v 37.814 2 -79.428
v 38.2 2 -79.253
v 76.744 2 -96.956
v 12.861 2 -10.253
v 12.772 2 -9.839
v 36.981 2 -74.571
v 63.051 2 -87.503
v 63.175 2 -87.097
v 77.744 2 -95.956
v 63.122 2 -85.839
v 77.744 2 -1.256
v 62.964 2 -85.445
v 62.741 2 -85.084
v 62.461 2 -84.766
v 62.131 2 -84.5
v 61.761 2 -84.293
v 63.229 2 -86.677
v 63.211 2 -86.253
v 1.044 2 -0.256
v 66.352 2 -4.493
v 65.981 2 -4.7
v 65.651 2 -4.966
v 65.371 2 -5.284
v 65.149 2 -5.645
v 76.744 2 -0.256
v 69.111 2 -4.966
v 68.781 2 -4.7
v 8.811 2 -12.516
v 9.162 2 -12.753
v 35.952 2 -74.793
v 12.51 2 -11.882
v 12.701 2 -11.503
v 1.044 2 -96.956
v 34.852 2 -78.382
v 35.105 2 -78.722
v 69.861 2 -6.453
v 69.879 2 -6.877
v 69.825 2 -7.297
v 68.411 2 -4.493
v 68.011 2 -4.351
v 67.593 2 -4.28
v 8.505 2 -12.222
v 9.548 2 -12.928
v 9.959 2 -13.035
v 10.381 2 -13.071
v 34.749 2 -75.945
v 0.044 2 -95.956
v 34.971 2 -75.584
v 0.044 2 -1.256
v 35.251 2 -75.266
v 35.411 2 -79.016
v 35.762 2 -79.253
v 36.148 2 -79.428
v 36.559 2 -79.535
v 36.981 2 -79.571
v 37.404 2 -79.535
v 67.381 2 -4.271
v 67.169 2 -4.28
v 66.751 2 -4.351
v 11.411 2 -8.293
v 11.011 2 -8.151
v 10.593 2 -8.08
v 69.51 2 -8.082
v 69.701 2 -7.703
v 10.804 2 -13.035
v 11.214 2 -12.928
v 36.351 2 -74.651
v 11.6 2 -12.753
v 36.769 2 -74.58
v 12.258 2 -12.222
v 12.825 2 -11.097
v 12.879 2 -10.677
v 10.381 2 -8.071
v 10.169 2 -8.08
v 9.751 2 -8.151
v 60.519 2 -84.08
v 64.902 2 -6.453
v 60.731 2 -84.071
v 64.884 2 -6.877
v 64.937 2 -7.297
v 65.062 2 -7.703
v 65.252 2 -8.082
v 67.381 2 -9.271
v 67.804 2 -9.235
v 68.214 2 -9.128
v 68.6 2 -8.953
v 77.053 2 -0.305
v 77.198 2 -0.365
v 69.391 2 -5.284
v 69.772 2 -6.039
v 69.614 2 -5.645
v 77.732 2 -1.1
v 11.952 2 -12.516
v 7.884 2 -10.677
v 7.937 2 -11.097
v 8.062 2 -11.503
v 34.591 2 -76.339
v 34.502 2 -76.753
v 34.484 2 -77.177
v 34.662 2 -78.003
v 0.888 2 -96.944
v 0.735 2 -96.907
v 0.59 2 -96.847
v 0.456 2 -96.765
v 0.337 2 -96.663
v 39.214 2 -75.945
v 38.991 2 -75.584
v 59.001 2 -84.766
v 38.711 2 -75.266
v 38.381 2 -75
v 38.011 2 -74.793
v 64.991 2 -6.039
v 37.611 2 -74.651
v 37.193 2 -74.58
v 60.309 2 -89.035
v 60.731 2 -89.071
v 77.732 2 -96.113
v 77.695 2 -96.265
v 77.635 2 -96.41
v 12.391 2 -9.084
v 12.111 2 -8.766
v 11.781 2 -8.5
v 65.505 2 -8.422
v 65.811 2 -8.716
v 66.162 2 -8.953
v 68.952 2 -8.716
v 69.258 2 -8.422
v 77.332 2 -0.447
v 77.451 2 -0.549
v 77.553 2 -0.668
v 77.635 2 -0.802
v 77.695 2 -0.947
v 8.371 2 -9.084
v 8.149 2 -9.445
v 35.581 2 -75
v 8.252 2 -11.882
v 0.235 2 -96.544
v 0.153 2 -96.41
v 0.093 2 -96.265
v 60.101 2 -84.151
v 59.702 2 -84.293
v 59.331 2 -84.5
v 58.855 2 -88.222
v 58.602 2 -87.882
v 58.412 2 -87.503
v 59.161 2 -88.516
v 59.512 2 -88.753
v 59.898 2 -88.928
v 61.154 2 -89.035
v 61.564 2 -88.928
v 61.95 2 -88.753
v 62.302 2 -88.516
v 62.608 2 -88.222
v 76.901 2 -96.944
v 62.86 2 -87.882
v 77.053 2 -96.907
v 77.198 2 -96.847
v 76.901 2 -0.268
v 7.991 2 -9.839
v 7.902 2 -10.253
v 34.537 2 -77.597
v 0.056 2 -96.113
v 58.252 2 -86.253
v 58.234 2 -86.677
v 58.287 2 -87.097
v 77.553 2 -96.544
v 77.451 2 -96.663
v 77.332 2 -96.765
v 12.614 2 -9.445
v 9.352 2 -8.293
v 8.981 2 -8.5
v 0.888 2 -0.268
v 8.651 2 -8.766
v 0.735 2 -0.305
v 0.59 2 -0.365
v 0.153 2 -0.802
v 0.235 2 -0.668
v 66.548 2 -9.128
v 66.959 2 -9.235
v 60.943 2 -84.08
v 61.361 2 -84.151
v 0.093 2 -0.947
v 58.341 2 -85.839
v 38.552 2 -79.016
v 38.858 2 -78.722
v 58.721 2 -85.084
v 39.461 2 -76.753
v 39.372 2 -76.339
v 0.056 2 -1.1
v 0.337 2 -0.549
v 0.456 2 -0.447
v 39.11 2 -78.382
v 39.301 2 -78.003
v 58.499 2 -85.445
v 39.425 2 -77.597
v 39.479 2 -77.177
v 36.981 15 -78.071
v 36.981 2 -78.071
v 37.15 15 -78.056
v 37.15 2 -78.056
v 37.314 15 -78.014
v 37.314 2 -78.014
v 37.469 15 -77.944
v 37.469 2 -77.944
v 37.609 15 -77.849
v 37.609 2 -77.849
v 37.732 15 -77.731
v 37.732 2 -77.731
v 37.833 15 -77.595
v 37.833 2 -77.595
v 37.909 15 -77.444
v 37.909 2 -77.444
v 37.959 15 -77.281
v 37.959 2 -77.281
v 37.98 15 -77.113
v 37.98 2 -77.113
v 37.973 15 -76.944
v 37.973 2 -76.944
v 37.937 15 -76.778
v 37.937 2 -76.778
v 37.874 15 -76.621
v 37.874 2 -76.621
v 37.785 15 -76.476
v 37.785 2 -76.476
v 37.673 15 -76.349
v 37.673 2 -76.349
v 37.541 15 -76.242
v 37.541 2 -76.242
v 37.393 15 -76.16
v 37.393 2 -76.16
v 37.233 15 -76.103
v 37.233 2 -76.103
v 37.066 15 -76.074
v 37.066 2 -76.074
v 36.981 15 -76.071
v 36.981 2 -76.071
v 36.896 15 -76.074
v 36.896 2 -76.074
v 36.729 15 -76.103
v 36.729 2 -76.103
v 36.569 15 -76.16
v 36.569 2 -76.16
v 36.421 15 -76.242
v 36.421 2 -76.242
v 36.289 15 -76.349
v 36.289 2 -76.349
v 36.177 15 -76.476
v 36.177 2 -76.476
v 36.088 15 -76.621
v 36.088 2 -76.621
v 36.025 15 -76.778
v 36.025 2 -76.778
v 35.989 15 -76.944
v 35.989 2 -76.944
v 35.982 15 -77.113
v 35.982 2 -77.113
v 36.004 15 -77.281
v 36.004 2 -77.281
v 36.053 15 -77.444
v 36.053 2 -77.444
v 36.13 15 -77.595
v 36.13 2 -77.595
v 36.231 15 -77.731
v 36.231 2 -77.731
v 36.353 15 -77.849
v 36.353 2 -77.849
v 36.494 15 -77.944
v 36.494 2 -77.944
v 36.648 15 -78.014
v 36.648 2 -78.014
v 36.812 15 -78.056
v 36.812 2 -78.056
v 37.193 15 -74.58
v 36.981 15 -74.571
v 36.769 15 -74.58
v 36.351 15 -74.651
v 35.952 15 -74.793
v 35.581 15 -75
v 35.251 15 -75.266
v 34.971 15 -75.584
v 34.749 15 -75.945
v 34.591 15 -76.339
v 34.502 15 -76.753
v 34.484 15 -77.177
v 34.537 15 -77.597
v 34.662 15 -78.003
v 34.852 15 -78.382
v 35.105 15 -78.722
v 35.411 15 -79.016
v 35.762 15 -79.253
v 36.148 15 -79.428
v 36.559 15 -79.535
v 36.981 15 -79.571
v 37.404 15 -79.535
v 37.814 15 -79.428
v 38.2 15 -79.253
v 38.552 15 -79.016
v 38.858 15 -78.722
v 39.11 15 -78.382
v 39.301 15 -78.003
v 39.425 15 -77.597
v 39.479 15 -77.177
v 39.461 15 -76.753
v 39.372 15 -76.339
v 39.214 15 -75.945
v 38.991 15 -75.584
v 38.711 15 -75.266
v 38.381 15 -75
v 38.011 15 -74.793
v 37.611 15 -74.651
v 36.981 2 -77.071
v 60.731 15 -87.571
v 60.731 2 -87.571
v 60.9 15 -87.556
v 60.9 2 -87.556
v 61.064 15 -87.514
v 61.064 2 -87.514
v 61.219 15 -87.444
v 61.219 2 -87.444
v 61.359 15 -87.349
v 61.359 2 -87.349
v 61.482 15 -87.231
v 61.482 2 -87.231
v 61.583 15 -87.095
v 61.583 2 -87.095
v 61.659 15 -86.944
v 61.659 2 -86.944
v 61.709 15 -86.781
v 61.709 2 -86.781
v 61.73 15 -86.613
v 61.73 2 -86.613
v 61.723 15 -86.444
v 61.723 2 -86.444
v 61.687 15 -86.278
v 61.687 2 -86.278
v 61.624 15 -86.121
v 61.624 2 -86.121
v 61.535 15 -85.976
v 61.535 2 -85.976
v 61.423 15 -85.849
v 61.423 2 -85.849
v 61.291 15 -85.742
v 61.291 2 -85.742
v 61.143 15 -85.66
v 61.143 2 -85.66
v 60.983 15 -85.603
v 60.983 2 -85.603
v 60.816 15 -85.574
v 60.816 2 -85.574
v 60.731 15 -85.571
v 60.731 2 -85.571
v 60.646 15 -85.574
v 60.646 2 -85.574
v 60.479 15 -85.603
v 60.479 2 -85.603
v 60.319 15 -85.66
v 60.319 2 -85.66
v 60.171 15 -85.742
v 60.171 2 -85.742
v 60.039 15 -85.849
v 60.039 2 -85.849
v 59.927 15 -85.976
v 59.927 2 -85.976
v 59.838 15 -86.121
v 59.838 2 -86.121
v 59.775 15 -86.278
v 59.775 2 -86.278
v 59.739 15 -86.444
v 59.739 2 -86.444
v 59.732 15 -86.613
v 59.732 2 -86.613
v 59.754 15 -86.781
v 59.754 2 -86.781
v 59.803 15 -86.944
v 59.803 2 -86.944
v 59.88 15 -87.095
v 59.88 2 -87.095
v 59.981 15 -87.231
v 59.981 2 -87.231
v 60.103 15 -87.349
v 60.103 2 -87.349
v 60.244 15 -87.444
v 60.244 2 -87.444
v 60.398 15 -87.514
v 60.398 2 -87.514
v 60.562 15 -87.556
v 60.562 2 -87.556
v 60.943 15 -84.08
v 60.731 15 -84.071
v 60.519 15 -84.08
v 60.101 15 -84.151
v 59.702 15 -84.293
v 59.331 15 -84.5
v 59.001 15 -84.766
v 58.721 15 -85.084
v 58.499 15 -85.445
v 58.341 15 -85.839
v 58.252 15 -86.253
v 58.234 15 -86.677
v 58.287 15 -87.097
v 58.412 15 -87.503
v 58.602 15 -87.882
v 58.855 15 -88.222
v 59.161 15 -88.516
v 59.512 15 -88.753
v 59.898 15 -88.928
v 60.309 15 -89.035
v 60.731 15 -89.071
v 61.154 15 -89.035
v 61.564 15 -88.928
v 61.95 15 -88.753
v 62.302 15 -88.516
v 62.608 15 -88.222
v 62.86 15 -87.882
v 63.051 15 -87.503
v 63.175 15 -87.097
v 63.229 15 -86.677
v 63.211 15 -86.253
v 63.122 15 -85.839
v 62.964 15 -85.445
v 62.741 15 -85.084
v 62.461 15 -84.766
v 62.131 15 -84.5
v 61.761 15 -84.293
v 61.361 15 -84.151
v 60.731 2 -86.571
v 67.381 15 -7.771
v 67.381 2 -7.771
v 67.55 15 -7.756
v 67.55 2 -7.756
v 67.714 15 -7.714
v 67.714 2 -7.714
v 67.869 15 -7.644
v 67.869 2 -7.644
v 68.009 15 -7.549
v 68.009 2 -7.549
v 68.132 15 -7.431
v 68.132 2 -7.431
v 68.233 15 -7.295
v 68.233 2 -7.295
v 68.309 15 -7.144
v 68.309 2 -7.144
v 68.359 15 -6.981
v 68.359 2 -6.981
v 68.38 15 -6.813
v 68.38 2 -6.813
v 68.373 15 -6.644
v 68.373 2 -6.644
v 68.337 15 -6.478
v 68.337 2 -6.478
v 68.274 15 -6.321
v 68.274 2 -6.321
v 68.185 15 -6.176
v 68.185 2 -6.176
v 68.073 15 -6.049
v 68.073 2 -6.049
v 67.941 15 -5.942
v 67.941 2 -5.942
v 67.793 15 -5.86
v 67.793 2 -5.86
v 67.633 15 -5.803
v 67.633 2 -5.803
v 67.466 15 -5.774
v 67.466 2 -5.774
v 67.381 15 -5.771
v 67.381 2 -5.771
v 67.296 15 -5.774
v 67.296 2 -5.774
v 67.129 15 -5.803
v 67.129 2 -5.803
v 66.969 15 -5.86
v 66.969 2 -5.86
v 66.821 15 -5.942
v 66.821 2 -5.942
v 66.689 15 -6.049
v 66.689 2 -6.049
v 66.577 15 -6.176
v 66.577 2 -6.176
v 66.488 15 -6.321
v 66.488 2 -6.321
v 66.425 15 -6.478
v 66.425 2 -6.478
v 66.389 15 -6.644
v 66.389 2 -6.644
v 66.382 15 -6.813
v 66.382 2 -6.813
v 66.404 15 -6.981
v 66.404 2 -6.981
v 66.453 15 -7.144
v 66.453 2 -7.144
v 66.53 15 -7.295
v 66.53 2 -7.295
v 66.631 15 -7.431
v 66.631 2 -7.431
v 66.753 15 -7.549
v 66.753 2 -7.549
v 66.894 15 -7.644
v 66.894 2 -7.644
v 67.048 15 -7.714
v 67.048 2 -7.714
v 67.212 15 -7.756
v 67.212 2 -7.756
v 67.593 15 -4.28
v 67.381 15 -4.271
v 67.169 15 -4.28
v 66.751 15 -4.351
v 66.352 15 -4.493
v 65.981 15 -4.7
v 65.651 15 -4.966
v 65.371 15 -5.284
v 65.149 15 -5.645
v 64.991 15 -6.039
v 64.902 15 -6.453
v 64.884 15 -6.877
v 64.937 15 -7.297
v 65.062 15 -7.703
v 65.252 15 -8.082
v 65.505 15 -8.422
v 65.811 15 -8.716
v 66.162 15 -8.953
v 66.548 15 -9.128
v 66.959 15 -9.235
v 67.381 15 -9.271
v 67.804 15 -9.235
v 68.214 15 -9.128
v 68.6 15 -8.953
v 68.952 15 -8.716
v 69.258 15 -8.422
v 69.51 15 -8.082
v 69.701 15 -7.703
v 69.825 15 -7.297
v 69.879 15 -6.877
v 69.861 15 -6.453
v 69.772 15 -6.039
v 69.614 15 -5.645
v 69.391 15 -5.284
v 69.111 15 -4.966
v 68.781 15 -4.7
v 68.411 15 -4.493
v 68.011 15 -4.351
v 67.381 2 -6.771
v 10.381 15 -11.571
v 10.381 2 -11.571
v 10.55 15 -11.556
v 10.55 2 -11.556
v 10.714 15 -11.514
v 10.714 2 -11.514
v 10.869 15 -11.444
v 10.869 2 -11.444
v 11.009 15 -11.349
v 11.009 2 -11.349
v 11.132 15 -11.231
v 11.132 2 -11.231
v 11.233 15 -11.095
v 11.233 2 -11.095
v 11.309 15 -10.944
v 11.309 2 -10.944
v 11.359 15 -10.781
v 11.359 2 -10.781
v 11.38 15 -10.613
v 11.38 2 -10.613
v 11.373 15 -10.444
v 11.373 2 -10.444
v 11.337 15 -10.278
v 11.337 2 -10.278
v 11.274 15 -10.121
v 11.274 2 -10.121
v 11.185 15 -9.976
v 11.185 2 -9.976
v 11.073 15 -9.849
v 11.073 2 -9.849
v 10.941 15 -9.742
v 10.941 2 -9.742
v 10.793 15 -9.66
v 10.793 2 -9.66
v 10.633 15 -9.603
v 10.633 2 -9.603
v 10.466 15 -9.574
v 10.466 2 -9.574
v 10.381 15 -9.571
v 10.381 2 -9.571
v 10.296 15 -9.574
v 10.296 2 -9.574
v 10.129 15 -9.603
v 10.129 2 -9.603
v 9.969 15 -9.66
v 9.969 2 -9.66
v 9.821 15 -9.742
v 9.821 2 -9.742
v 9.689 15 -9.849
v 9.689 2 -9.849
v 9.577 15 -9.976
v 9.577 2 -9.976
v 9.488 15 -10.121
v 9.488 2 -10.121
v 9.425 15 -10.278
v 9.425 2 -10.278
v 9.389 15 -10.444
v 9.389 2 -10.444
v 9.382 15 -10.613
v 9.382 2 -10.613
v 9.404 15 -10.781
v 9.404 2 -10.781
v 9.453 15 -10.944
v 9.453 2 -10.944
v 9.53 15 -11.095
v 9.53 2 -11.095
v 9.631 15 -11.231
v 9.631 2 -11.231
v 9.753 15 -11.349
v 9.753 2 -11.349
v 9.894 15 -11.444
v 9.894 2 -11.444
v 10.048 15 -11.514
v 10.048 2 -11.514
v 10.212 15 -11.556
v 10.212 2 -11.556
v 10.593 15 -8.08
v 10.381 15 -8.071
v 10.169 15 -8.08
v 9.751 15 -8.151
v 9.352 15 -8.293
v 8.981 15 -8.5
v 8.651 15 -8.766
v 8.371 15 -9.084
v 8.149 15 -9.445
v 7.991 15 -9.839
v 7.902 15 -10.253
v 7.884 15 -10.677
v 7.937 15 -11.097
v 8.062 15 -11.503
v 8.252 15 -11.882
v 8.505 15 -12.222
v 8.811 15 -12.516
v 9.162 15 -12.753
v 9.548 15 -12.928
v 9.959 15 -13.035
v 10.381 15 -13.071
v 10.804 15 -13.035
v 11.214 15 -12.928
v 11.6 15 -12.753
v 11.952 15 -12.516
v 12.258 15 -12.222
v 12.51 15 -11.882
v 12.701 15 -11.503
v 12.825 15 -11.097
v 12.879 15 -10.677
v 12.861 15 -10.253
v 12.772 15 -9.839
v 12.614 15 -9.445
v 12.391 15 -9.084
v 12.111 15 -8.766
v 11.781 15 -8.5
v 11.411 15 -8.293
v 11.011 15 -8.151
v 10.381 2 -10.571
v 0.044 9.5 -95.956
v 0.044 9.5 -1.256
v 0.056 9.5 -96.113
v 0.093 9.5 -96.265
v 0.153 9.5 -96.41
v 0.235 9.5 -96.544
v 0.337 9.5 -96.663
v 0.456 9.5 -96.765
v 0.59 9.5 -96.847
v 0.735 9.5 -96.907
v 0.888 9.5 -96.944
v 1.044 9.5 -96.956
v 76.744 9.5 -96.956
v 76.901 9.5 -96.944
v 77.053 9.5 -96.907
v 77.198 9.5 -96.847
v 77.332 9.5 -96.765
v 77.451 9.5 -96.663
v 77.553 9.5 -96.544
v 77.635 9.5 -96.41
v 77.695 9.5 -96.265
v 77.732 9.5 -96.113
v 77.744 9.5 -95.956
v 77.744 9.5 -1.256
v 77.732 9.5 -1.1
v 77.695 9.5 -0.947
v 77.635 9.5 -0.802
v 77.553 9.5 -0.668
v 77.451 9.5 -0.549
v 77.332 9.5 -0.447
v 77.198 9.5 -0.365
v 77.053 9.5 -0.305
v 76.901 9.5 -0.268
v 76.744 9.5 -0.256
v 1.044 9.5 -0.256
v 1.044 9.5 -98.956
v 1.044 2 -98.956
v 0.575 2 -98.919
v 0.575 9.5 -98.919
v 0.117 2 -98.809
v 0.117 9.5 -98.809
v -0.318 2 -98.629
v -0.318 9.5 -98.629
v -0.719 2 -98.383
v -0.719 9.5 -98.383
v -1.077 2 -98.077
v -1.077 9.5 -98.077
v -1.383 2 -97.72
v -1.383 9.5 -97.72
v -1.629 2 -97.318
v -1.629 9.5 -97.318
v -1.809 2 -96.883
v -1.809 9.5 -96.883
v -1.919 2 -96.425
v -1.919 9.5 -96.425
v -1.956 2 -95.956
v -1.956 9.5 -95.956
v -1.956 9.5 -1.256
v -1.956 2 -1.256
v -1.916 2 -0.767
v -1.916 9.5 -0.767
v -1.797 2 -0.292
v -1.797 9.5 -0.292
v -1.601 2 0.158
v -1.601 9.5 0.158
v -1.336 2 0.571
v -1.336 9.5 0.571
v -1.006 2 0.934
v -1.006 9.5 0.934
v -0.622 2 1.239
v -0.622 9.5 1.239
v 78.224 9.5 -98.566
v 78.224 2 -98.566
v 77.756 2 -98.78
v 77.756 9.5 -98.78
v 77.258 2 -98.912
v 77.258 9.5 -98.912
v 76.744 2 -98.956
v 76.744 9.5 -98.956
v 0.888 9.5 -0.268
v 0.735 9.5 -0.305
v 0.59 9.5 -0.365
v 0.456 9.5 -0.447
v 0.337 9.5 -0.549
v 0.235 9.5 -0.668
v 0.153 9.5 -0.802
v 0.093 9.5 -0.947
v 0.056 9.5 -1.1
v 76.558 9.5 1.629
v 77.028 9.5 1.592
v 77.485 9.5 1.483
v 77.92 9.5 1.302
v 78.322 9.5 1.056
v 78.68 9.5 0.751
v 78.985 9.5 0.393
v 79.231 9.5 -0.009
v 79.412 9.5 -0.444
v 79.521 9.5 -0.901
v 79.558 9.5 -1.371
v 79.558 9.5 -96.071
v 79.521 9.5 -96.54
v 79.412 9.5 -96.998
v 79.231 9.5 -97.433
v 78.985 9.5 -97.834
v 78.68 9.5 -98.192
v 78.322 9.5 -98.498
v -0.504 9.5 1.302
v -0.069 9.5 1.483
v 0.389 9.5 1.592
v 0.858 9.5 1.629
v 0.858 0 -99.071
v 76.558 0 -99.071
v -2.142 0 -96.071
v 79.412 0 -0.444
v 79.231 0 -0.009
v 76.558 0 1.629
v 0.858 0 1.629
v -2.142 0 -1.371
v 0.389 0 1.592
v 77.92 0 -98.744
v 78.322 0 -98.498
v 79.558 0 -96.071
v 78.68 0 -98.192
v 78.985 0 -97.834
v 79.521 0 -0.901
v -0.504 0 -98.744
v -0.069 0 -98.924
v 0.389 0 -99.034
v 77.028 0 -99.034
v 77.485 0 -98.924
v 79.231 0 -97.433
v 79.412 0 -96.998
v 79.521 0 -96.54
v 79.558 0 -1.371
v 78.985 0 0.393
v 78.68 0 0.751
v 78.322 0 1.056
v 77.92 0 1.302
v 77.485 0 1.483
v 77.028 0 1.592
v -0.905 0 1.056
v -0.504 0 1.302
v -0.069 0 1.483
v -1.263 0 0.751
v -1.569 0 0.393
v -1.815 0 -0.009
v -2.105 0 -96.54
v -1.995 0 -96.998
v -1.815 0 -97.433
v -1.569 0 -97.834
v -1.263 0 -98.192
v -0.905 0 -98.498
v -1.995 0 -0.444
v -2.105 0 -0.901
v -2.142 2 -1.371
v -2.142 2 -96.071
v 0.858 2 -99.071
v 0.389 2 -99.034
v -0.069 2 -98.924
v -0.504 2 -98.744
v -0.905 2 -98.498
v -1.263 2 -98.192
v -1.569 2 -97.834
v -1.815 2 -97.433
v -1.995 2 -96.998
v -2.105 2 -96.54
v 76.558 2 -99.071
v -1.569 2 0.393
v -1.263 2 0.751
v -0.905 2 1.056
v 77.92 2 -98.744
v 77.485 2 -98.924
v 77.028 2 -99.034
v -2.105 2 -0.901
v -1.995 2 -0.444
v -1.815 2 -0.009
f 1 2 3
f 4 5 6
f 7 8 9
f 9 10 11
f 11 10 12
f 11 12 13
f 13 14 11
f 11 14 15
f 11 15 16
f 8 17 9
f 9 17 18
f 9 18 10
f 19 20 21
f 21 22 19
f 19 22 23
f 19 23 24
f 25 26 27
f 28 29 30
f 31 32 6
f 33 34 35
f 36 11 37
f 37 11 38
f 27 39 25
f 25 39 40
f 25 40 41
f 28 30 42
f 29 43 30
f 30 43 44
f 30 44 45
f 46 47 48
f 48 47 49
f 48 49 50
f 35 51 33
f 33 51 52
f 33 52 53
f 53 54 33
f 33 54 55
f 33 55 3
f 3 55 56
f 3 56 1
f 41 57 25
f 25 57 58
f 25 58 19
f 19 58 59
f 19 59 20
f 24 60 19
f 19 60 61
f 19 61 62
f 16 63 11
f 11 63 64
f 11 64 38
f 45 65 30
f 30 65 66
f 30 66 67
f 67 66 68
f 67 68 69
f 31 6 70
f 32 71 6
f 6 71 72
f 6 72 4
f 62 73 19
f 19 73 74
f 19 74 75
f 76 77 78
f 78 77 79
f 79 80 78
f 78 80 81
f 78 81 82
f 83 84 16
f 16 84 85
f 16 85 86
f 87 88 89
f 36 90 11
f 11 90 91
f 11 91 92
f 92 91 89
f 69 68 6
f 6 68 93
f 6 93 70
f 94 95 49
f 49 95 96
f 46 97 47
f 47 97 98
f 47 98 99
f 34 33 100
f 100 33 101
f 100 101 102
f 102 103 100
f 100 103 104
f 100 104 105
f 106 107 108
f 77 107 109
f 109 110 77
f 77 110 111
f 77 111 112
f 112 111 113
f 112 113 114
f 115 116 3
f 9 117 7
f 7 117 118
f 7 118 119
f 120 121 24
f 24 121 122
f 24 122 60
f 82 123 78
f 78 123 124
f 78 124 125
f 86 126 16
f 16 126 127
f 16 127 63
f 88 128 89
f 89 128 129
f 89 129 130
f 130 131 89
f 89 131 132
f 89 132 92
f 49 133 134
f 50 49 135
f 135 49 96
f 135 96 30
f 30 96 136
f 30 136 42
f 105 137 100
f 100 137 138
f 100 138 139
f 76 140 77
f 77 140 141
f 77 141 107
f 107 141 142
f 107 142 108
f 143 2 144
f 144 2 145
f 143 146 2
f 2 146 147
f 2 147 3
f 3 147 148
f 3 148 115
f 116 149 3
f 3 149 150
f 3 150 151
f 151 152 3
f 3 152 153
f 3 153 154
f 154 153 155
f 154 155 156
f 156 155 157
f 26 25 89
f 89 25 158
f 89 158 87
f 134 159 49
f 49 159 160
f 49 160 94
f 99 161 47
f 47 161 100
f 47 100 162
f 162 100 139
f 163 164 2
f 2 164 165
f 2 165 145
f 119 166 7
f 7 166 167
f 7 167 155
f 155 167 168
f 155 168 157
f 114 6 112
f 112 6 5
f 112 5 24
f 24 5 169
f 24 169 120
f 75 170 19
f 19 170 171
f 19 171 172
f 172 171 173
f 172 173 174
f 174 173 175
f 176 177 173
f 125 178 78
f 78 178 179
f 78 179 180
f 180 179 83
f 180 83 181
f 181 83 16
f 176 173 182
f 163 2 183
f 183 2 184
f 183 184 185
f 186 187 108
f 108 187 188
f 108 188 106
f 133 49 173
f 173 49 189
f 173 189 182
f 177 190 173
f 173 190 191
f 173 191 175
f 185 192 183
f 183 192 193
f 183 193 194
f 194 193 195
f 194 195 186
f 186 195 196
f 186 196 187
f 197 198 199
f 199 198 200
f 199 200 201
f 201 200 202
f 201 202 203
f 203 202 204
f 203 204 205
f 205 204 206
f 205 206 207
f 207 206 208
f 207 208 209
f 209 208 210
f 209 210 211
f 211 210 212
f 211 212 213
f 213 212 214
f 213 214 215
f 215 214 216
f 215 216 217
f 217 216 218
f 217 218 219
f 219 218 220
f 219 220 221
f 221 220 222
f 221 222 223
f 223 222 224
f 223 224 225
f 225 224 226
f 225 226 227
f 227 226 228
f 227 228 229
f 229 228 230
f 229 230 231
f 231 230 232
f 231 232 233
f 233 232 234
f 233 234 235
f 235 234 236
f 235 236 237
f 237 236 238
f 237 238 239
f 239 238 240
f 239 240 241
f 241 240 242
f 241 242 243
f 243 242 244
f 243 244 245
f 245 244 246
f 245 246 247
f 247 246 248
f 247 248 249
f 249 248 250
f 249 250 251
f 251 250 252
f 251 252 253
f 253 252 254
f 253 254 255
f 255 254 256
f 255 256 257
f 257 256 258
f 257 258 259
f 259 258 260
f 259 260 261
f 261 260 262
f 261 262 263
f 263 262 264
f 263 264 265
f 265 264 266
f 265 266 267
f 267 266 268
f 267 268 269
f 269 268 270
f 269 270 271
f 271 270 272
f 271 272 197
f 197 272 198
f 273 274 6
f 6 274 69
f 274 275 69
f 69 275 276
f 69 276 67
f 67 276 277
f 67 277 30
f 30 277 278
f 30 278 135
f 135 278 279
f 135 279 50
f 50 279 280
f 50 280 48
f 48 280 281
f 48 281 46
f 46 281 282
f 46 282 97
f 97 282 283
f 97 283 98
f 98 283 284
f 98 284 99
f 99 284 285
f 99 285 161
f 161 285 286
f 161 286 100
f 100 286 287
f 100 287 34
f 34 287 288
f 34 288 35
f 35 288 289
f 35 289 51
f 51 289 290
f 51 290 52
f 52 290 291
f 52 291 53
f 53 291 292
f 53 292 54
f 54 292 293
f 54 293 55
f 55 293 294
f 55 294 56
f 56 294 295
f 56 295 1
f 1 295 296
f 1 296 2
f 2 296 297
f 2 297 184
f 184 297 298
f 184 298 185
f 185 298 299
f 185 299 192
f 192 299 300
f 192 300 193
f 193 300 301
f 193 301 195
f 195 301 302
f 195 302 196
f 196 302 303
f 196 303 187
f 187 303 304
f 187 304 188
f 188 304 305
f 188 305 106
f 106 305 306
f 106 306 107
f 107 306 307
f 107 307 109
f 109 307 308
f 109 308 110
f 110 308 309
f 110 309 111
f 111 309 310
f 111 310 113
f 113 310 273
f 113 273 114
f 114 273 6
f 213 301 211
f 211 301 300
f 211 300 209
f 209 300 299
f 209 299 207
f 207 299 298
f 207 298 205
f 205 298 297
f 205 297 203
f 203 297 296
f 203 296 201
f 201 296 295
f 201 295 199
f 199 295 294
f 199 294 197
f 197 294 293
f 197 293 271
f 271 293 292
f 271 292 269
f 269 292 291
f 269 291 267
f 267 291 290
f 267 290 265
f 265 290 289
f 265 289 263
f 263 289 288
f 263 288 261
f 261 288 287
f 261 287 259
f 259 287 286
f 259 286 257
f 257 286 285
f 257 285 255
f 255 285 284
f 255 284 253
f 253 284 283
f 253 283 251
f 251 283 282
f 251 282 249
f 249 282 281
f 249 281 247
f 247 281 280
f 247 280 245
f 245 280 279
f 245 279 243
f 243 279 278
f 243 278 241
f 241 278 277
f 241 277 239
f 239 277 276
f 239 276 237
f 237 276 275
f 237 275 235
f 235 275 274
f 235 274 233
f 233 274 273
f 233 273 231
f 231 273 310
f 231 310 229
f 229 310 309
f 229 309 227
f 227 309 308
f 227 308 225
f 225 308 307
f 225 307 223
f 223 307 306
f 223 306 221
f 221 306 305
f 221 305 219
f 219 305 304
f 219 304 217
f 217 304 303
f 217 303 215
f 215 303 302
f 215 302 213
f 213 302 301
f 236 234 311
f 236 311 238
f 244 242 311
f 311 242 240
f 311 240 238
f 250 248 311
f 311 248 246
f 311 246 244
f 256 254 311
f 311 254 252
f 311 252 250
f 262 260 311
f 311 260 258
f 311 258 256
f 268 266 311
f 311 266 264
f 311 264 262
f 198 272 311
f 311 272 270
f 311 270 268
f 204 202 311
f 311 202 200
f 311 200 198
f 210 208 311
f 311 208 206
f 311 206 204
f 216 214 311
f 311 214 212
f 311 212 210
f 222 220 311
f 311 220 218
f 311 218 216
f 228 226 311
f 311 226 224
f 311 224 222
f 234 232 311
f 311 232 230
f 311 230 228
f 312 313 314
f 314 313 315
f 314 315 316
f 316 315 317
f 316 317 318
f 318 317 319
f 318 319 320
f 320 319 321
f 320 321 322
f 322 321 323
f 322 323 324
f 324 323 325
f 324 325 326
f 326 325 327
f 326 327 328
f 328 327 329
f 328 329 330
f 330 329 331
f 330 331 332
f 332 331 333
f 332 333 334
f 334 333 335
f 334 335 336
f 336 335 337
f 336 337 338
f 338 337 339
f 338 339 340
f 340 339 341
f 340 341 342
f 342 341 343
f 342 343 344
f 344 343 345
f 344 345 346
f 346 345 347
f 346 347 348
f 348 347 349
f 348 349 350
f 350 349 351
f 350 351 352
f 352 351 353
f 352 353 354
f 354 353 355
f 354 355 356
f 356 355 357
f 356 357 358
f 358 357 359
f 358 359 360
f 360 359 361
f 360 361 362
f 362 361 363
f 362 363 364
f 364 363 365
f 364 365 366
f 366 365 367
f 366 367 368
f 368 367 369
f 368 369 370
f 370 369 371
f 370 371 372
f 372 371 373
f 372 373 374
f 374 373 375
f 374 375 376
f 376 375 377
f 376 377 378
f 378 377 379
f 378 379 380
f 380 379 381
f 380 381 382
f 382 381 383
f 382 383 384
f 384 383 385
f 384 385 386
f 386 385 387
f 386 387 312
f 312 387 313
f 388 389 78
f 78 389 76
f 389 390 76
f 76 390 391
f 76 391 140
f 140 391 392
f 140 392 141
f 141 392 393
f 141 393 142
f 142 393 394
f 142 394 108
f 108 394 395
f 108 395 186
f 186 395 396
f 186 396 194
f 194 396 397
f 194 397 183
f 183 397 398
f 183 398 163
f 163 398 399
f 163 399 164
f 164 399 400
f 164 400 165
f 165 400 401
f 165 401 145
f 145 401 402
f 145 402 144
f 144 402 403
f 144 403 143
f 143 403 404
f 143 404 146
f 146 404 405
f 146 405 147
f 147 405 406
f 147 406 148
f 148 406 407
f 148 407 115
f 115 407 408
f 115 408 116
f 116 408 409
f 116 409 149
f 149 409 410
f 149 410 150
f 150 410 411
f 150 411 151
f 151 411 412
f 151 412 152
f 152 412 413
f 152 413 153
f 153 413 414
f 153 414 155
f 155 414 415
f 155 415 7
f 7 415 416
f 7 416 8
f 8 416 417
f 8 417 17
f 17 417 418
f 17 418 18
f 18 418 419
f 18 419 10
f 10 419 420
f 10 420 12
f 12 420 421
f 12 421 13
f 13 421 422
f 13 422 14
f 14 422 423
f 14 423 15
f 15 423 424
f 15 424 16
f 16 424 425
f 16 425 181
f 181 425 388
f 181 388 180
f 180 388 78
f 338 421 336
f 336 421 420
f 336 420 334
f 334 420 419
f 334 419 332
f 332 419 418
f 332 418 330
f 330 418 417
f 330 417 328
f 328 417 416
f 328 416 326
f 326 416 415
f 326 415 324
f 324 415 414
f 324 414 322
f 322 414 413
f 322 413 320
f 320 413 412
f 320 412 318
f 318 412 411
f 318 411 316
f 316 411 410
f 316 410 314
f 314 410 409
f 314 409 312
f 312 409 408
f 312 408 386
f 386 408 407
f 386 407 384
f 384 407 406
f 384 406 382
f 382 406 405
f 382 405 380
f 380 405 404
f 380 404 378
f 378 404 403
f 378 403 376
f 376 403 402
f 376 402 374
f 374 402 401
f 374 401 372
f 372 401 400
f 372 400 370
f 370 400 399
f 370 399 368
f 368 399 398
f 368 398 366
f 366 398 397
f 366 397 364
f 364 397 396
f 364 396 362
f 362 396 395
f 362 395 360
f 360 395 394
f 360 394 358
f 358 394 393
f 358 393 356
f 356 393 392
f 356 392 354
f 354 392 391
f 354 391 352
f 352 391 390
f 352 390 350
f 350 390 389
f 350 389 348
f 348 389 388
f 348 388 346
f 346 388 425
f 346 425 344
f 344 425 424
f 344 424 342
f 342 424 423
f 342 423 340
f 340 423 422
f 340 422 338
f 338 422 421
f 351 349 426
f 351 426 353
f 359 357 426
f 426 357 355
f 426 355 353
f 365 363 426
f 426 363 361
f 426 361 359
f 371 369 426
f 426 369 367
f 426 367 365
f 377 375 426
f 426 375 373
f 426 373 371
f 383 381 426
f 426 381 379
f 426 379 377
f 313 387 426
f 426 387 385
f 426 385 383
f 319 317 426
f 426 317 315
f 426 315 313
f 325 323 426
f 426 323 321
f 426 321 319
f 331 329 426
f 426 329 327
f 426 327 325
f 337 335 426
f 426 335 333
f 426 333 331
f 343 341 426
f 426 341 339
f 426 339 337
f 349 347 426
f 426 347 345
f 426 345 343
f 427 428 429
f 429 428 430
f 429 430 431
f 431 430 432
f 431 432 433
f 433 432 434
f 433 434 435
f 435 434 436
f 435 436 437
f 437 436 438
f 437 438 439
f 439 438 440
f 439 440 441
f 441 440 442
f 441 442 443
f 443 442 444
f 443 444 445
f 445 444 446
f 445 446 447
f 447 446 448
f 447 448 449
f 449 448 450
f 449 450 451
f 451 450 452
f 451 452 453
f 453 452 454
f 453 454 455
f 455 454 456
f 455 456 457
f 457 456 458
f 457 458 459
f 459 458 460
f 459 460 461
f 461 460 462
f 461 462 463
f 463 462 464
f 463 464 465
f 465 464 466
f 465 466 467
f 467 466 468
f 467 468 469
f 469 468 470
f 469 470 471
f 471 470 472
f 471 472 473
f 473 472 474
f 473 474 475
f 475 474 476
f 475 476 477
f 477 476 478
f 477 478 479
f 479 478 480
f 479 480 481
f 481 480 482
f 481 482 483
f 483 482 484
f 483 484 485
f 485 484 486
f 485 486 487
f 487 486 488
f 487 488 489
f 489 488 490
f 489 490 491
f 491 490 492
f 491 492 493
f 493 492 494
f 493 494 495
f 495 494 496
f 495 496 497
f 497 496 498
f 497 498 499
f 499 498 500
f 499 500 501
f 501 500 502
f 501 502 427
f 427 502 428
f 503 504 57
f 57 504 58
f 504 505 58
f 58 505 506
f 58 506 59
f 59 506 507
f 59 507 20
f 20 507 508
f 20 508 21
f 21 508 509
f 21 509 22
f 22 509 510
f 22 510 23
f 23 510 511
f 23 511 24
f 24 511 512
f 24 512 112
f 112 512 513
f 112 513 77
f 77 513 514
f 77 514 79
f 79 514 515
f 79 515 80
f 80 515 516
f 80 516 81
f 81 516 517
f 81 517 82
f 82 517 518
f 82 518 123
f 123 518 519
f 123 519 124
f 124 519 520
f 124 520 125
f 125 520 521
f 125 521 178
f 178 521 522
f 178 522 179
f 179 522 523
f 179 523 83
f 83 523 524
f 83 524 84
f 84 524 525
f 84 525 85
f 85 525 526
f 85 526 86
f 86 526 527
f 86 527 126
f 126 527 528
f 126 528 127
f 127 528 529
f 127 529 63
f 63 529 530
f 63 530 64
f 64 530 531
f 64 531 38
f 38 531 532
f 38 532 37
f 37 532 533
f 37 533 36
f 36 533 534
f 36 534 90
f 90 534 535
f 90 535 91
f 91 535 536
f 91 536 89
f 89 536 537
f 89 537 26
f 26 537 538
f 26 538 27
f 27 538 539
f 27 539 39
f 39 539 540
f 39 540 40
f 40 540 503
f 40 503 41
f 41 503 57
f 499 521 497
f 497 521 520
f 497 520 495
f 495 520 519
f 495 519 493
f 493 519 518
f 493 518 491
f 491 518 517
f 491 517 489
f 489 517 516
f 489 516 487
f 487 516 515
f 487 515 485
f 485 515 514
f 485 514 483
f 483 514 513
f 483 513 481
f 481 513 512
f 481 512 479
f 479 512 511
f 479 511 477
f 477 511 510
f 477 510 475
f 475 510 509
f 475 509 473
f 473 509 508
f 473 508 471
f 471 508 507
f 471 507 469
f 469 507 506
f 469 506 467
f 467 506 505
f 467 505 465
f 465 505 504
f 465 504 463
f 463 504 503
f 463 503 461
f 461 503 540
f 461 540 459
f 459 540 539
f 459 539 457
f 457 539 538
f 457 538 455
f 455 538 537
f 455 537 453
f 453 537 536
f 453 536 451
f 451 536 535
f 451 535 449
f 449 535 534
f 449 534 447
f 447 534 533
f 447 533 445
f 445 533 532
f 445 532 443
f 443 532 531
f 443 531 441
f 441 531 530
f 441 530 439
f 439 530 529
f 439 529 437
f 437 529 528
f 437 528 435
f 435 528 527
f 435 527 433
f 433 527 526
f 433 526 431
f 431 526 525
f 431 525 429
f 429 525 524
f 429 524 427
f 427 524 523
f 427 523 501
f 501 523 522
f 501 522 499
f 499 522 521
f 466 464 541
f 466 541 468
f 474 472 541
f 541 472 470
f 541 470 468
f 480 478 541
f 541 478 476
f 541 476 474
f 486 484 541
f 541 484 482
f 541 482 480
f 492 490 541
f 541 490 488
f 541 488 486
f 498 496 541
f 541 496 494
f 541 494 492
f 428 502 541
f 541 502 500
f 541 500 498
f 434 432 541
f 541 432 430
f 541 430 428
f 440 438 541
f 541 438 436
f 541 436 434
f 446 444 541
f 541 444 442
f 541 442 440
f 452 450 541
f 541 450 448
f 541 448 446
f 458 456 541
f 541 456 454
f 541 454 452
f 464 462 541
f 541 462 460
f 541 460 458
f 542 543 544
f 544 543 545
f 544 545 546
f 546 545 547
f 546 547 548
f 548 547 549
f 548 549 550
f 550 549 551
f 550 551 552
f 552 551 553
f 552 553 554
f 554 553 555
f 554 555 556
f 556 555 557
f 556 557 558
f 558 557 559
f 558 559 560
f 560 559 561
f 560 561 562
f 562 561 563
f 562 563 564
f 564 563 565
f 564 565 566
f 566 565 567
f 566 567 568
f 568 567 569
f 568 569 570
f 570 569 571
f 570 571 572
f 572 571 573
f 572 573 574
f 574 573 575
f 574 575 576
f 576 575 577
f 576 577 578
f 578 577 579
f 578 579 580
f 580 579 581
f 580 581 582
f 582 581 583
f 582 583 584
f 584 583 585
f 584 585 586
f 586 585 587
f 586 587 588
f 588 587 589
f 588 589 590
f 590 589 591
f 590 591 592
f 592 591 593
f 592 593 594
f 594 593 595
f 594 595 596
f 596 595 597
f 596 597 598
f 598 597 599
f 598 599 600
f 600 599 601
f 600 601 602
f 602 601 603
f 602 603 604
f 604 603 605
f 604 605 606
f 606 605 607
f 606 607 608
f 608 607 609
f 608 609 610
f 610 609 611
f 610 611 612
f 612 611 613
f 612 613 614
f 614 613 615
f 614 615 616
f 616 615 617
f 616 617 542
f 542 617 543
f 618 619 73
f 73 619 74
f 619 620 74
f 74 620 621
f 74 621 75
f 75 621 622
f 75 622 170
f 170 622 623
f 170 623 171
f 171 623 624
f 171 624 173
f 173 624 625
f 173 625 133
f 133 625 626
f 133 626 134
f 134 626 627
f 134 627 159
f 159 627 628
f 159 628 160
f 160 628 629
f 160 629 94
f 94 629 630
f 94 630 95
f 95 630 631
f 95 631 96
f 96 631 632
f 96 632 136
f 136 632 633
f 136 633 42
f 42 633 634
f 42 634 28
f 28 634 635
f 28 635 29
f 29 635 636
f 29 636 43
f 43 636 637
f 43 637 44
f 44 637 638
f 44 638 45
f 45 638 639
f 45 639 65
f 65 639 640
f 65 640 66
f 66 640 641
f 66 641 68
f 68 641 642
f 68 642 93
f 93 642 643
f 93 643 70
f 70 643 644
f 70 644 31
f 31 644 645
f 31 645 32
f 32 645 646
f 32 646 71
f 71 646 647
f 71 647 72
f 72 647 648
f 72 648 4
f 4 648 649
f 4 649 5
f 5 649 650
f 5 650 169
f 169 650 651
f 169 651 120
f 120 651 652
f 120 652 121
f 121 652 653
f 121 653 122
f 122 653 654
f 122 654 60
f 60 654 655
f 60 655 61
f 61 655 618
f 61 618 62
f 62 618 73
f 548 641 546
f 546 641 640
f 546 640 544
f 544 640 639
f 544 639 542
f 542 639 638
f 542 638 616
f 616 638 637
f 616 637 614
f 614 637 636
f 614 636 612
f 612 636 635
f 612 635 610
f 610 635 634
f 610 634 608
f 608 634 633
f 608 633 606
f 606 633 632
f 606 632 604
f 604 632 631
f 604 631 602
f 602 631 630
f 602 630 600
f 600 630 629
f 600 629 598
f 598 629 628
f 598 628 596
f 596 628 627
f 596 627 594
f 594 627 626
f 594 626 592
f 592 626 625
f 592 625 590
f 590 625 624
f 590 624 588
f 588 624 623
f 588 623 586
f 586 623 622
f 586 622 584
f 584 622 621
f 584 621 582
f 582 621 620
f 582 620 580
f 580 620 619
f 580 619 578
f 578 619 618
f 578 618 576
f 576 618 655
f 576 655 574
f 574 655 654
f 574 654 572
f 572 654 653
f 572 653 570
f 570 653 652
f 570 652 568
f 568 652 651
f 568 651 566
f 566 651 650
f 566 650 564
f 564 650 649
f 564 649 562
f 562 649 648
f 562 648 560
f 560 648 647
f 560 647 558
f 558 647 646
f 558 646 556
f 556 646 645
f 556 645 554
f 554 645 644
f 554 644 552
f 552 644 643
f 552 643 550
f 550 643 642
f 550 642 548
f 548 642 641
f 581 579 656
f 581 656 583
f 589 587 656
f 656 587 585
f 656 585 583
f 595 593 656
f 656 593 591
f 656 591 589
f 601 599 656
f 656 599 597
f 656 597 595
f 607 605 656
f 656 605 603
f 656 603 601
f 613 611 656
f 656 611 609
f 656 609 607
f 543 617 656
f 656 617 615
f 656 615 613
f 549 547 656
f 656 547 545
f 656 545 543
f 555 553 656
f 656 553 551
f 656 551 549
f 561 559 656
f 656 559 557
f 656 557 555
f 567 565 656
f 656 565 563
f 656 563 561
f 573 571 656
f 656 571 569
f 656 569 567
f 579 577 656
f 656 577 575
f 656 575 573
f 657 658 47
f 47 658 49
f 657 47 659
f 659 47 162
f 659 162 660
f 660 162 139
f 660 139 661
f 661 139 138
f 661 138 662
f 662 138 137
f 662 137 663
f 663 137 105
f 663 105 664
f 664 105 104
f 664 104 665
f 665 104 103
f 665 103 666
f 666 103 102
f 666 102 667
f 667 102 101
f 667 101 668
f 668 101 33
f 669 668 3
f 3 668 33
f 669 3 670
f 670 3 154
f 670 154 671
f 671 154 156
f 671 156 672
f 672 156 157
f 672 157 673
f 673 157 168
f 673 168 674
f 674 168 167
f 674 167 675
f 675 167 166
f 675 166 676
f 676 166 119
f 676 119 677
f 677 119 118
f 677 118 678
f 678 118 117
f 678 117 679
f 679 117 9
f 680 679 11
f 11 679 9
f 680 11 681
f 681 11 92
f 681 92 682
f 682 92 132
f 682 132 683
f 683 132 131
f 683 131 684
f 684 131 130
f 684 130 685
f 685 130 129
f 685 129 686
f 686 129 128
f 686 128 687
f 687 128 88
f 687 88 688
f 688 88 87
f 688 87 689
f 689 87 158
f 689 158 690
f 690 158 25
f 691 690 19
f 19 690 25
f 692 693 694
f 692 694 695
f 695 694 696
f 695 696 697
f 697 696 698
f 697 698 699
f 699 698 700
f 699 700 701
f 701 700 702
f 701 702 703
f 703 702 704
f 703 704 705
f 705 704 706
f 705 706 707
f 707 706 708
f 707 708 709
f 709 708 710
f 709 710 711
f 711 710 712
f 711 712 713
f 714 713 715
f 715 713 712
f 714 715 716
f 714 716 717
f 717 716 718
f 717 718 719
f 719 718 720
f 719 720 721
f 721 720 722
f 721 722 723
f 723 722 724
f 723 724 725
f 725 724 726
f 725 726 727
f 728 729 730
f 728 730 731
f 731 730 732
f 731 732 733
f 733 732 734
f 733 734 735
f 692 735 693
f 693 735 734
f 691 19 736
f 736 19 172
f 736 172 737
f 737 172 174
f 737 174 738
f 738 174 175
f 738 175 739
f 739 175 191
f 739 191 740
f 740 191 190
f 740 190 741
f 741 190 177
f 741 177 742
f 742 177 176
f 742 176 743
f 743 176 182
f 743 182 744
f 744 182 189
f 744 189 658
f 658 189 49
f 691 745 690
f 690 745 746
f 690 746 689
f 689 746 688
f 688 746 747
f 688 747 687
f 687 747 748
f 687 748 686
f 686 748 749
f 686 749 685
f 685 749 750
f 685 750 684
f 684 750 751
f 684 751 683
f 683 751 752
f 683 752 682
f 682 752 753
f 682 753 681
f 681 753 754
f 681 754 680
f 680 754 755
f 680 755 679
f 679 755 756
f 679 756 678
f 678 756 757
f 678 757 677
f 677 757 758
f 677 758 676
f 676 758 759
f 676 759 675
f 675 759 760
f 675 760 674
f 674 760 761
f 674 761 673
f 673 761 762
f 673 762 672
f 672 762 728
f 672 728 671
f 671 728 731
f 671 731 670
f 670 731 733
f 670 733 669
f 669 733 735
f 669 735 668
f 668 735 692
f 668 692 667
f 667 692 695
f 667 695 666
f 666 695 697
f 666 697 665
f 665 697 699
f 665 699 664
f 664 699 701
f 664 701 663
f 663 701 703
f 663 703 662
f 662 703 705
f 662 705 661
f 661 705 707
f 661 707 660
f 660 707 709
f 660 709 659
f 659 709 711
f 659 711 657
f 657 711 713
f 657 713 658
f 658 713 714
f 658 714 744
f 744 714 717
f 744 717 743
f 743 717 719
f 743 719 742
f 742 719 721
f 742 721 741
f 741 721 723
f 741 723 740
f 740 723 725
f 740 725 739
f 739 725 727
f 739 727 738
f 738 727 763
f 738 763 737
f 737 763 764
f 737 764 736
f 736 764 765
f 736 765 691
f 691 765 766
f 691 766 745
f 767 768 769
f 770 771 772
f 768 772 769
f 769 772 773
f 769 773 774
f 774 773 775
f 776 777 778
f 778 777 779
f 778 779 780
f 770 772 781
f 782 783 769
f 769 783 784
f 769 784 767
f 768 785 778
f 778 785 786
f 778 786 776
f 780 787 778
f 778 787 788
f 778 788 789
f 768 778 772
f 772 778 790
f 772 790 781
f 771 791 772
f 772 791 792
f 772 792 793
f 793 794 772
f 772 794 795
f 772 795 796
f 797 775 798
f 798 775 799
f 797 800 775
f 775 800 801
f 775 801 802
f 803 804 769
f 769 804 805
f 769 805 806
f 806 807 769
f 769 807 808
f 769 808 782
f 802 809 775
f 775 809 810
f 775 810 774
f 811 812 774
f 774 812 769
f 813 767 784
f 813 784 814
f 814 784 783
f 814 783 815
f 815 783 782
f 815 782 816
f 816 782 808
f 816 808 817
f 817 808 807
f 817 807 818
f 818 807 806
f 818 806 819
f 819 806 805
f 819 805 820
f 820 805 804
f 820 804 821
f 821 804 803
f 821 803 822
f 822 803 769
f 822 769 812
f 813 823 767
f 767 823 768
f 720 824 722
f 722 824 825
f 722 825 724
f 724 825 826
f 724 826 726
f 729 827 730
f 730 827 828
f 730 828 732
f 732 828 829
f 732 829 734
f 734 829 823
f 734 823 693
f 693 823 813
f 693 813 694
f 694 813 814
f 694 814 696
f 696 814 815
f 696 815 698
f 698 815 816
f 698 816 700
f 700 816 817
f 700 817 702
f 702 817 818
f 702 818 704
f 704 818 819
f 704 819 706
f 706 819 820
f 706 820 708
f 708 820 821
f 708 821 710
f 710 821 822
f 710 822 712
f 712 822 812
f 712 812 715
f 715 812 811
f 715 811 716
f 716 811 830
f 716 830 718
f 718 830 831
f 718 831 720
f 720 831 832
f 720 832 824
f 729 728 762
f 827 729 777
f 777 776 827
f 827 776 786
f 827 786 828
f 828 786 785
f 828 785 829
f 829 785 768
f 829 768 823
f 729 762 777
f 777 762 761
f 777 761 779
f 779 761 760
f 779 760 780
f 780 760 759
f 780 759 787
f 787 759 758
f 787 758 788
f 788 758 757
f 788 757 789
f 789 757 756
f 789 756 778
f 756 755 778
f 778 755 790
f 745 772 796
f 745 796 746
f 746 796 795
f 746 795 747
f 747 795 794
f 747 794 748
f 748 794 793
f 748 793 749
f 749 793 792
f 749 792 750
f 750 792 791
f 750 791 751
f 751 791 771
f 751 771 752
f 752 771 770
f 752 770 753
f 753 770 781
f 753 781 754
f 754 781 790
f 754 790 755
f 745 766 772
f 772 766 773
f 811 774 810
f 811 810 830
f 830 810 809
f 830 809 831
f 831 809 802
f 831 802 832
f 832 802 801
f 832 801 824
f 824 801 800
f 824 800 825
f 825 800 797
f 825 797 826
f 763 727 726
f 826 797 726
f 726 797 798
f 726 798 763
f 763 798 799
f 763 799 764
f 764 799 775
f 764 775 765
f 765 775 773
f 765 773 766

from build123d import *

# Parameters (mm, degrees)
BOSS_EXTRUDE1_DEPTH = 2
SKETCH2_R           = 2.5
SKETCH2_R_2         = 1
BOSS_EXTRUDE2_DEPTH = 13
BOSS_EXTRUDE3_DEPTH = 7.5


with BuildPart() as part:
    # Sketch1 → Boss-Extrude1 (new body)
    with BuildSketch(Plane(origin=(0, 0, 0), x_dir=(1, 0, 0), z_dir=(0, 1, 0))):
        with BuildLine():
            Line((0.858370189, 99.070664528), (76.558370189, 99.070664528))
            ThreePointArc((76.558370189, 99.070664528), (78.679690533, 98.191984872), (79.558370189, 96.070664528))
            Line((79.558370189, 96.070664528), (79.558370189, 1.370664528))
            ThreePointArc((79.558370189, 1.370664528), (78.679690533, -0.750655815), (76.558370189, -1.629335472))
            Line((76.558370189, -1.629335472), (0.858370189, -1.629335472))
            ThreePointArc((0.858370189, -1.629335472), (-1.262950154, -0.750655815), (-2.141629811, 1.370664528))
            Line((-2.141629811, 1.370664528), (-2.141629811, 96.070664528))
            ThreePointArc((-2.141629811, 96.070664528), (-1.262950154, 98.191984872), (0.858370189, 99.070664528))
        make_face()
    extrude(amount=BOSS_EXTRUDE1_DEPTH)

    # Sketch2 → Boss-Extrude2 (add)
    # profile 1 of 4: a face of its own
    with BuildSketch(Plane(origin=(0, 2, 0), x_dir=(1, 0, 0), z_dir=(0, 1, 0))):
        with Locations(Location((10.381260955, 10.570783491, 0), (0, 0, 90))):
            Circle(SKETCH2_R)
        with Locations(Location((10.381260955, 10.570783491, 0), (0, 0, 90))):
            Circle(SKETCH2_R_2, mode=Mode.SUBTRACT)
    # profile 2 of 4: a face of its own
    with BuildSketch(Plane(origin=(0, 2, 0), x_dir=(1, 0, 0), z_dir=(0, 1, 0))):
        with Locations(Location((67.381260955, 6.770783491, 0), (0, 0, 90))):
            Circle(SKETCH2_R)
        with Locations(Location((67.381260955, 6.770783491, 0), (0, 0, 90))):
            Circle(SKETCH2_R_2, mode=Mode.SUBTRACT)
    # profile 3 of 4: a face of its own
    with BuildSketch(Plane(origin=(0, 2, 0), x_dir=(1, 0, 0), z_dir=(0, 1, 0))):
        with Locations(Location((60.731260955, 86.570783491, 0), (0, 0, 90))):
            Circle(SKETCH2_R)
        with Locations(Location((60.731260955, 86.570783491, 0), (0, 0, 90))):
            Circle(SKETCH2_R_2, mode=Mode.SUBTRACT)
    # profile 4 of 4: a face of its own
    with BuildSketch(Plane(origin=(0, 2, 0), x_dir=(1, 0, 0), z_dir=(0, 1, 0))):
        with Locations(Location((36.981260955, 77.070783491, 0), (0, 0, 90))):
            Circle(SKETCH2_R)
        with Locations(Location((36.981260955, 77.070783491, 0), (0, 0, 90))):
            Circle(SKETCH2_R_2, mode=Mode.SUBTRACT)
    extrude(amount=BOSS_EXTRUDE2_DEPTH)

    # Sketch3 → Boss-Extrude3 (add)
    with BuildSketch(Plane(origin=(0, 2, 0), x_dir=(1, 0, 0), z_dir=(0, 1, 0))):
        with BuildLine():
            Line((76.744157469, 98.956147889), (1.044157469, 98.956147889))
            ThreePointArc((1.044157469, 98.956147889), (-1.077162875, 98.077468232), (-1.955842531, 95.956147889))
            Line((-1.955842531, 95.956147889), (-1.955842531, 1.256147889))
            ThreePointArc((-1.955842531, 1.256147889), (-1.601404378, -0.158420071), (-0.621840855, -1.238736795))
            ThreePointArc((-0.621840855, -1.238736795), (0.092930436, -1.530042624), (0.858370189, -1.629335472))
            Line((0.858370189, -1.629335472), (76.558370189, -1.629335472))
            ThreePointArc((76.558370189, -1.629335472), (78.679690533, -0.750655815), (79.558370189, 1.370664528))
            Line((79.558370189, 1.370664528), (79.558370189, 96.070664528))
            ThreePointArc((79.558370189, 96.070664528), (79.203932036, 97.485232488), (78.224368514, 98.565549212))
            ThreePointArc((78.224368514, 98.565549212), (77.509597222, 98.856855041), (76.744157469, 98.956147889))
        make_face()
        with BuildLine():
            ThreePointArc((0.044157469, 95.956147889), (0.337050688, 96.66325467), (1.044157469, 96.956147889))
            Line((1.044157469, 96.956147889), (76.744157469, 96.956147889))
            ThreePointArc((76.744157469, 96.956147889), (77.45126425, 96.66325467), (77.744157469, 95.956147889))
            Line((77.744157469, 95.956147889), (77.744157469, 1.256147889))
            ThreePointArc((77.744157469, 1.256147889), (77.45126425, 0.549041108), (76.744157469, 0.256147889))
            Line((76.744157469, 0.256147889), (1.044157469, 0.256147889))
            ThreePointArc((1.044157469, 0.256147889), (0.337050688, 0.549041108), (0.044157469, 1.256147889))
            Line((0.044157469, 1.256147889), (0.044157469, 95.956147889))
        make_face(mode=Mode.SUBTRACT)
    extrude(amount=BOSS_EXTRUDE3_DEPTH)


solid = part.part
